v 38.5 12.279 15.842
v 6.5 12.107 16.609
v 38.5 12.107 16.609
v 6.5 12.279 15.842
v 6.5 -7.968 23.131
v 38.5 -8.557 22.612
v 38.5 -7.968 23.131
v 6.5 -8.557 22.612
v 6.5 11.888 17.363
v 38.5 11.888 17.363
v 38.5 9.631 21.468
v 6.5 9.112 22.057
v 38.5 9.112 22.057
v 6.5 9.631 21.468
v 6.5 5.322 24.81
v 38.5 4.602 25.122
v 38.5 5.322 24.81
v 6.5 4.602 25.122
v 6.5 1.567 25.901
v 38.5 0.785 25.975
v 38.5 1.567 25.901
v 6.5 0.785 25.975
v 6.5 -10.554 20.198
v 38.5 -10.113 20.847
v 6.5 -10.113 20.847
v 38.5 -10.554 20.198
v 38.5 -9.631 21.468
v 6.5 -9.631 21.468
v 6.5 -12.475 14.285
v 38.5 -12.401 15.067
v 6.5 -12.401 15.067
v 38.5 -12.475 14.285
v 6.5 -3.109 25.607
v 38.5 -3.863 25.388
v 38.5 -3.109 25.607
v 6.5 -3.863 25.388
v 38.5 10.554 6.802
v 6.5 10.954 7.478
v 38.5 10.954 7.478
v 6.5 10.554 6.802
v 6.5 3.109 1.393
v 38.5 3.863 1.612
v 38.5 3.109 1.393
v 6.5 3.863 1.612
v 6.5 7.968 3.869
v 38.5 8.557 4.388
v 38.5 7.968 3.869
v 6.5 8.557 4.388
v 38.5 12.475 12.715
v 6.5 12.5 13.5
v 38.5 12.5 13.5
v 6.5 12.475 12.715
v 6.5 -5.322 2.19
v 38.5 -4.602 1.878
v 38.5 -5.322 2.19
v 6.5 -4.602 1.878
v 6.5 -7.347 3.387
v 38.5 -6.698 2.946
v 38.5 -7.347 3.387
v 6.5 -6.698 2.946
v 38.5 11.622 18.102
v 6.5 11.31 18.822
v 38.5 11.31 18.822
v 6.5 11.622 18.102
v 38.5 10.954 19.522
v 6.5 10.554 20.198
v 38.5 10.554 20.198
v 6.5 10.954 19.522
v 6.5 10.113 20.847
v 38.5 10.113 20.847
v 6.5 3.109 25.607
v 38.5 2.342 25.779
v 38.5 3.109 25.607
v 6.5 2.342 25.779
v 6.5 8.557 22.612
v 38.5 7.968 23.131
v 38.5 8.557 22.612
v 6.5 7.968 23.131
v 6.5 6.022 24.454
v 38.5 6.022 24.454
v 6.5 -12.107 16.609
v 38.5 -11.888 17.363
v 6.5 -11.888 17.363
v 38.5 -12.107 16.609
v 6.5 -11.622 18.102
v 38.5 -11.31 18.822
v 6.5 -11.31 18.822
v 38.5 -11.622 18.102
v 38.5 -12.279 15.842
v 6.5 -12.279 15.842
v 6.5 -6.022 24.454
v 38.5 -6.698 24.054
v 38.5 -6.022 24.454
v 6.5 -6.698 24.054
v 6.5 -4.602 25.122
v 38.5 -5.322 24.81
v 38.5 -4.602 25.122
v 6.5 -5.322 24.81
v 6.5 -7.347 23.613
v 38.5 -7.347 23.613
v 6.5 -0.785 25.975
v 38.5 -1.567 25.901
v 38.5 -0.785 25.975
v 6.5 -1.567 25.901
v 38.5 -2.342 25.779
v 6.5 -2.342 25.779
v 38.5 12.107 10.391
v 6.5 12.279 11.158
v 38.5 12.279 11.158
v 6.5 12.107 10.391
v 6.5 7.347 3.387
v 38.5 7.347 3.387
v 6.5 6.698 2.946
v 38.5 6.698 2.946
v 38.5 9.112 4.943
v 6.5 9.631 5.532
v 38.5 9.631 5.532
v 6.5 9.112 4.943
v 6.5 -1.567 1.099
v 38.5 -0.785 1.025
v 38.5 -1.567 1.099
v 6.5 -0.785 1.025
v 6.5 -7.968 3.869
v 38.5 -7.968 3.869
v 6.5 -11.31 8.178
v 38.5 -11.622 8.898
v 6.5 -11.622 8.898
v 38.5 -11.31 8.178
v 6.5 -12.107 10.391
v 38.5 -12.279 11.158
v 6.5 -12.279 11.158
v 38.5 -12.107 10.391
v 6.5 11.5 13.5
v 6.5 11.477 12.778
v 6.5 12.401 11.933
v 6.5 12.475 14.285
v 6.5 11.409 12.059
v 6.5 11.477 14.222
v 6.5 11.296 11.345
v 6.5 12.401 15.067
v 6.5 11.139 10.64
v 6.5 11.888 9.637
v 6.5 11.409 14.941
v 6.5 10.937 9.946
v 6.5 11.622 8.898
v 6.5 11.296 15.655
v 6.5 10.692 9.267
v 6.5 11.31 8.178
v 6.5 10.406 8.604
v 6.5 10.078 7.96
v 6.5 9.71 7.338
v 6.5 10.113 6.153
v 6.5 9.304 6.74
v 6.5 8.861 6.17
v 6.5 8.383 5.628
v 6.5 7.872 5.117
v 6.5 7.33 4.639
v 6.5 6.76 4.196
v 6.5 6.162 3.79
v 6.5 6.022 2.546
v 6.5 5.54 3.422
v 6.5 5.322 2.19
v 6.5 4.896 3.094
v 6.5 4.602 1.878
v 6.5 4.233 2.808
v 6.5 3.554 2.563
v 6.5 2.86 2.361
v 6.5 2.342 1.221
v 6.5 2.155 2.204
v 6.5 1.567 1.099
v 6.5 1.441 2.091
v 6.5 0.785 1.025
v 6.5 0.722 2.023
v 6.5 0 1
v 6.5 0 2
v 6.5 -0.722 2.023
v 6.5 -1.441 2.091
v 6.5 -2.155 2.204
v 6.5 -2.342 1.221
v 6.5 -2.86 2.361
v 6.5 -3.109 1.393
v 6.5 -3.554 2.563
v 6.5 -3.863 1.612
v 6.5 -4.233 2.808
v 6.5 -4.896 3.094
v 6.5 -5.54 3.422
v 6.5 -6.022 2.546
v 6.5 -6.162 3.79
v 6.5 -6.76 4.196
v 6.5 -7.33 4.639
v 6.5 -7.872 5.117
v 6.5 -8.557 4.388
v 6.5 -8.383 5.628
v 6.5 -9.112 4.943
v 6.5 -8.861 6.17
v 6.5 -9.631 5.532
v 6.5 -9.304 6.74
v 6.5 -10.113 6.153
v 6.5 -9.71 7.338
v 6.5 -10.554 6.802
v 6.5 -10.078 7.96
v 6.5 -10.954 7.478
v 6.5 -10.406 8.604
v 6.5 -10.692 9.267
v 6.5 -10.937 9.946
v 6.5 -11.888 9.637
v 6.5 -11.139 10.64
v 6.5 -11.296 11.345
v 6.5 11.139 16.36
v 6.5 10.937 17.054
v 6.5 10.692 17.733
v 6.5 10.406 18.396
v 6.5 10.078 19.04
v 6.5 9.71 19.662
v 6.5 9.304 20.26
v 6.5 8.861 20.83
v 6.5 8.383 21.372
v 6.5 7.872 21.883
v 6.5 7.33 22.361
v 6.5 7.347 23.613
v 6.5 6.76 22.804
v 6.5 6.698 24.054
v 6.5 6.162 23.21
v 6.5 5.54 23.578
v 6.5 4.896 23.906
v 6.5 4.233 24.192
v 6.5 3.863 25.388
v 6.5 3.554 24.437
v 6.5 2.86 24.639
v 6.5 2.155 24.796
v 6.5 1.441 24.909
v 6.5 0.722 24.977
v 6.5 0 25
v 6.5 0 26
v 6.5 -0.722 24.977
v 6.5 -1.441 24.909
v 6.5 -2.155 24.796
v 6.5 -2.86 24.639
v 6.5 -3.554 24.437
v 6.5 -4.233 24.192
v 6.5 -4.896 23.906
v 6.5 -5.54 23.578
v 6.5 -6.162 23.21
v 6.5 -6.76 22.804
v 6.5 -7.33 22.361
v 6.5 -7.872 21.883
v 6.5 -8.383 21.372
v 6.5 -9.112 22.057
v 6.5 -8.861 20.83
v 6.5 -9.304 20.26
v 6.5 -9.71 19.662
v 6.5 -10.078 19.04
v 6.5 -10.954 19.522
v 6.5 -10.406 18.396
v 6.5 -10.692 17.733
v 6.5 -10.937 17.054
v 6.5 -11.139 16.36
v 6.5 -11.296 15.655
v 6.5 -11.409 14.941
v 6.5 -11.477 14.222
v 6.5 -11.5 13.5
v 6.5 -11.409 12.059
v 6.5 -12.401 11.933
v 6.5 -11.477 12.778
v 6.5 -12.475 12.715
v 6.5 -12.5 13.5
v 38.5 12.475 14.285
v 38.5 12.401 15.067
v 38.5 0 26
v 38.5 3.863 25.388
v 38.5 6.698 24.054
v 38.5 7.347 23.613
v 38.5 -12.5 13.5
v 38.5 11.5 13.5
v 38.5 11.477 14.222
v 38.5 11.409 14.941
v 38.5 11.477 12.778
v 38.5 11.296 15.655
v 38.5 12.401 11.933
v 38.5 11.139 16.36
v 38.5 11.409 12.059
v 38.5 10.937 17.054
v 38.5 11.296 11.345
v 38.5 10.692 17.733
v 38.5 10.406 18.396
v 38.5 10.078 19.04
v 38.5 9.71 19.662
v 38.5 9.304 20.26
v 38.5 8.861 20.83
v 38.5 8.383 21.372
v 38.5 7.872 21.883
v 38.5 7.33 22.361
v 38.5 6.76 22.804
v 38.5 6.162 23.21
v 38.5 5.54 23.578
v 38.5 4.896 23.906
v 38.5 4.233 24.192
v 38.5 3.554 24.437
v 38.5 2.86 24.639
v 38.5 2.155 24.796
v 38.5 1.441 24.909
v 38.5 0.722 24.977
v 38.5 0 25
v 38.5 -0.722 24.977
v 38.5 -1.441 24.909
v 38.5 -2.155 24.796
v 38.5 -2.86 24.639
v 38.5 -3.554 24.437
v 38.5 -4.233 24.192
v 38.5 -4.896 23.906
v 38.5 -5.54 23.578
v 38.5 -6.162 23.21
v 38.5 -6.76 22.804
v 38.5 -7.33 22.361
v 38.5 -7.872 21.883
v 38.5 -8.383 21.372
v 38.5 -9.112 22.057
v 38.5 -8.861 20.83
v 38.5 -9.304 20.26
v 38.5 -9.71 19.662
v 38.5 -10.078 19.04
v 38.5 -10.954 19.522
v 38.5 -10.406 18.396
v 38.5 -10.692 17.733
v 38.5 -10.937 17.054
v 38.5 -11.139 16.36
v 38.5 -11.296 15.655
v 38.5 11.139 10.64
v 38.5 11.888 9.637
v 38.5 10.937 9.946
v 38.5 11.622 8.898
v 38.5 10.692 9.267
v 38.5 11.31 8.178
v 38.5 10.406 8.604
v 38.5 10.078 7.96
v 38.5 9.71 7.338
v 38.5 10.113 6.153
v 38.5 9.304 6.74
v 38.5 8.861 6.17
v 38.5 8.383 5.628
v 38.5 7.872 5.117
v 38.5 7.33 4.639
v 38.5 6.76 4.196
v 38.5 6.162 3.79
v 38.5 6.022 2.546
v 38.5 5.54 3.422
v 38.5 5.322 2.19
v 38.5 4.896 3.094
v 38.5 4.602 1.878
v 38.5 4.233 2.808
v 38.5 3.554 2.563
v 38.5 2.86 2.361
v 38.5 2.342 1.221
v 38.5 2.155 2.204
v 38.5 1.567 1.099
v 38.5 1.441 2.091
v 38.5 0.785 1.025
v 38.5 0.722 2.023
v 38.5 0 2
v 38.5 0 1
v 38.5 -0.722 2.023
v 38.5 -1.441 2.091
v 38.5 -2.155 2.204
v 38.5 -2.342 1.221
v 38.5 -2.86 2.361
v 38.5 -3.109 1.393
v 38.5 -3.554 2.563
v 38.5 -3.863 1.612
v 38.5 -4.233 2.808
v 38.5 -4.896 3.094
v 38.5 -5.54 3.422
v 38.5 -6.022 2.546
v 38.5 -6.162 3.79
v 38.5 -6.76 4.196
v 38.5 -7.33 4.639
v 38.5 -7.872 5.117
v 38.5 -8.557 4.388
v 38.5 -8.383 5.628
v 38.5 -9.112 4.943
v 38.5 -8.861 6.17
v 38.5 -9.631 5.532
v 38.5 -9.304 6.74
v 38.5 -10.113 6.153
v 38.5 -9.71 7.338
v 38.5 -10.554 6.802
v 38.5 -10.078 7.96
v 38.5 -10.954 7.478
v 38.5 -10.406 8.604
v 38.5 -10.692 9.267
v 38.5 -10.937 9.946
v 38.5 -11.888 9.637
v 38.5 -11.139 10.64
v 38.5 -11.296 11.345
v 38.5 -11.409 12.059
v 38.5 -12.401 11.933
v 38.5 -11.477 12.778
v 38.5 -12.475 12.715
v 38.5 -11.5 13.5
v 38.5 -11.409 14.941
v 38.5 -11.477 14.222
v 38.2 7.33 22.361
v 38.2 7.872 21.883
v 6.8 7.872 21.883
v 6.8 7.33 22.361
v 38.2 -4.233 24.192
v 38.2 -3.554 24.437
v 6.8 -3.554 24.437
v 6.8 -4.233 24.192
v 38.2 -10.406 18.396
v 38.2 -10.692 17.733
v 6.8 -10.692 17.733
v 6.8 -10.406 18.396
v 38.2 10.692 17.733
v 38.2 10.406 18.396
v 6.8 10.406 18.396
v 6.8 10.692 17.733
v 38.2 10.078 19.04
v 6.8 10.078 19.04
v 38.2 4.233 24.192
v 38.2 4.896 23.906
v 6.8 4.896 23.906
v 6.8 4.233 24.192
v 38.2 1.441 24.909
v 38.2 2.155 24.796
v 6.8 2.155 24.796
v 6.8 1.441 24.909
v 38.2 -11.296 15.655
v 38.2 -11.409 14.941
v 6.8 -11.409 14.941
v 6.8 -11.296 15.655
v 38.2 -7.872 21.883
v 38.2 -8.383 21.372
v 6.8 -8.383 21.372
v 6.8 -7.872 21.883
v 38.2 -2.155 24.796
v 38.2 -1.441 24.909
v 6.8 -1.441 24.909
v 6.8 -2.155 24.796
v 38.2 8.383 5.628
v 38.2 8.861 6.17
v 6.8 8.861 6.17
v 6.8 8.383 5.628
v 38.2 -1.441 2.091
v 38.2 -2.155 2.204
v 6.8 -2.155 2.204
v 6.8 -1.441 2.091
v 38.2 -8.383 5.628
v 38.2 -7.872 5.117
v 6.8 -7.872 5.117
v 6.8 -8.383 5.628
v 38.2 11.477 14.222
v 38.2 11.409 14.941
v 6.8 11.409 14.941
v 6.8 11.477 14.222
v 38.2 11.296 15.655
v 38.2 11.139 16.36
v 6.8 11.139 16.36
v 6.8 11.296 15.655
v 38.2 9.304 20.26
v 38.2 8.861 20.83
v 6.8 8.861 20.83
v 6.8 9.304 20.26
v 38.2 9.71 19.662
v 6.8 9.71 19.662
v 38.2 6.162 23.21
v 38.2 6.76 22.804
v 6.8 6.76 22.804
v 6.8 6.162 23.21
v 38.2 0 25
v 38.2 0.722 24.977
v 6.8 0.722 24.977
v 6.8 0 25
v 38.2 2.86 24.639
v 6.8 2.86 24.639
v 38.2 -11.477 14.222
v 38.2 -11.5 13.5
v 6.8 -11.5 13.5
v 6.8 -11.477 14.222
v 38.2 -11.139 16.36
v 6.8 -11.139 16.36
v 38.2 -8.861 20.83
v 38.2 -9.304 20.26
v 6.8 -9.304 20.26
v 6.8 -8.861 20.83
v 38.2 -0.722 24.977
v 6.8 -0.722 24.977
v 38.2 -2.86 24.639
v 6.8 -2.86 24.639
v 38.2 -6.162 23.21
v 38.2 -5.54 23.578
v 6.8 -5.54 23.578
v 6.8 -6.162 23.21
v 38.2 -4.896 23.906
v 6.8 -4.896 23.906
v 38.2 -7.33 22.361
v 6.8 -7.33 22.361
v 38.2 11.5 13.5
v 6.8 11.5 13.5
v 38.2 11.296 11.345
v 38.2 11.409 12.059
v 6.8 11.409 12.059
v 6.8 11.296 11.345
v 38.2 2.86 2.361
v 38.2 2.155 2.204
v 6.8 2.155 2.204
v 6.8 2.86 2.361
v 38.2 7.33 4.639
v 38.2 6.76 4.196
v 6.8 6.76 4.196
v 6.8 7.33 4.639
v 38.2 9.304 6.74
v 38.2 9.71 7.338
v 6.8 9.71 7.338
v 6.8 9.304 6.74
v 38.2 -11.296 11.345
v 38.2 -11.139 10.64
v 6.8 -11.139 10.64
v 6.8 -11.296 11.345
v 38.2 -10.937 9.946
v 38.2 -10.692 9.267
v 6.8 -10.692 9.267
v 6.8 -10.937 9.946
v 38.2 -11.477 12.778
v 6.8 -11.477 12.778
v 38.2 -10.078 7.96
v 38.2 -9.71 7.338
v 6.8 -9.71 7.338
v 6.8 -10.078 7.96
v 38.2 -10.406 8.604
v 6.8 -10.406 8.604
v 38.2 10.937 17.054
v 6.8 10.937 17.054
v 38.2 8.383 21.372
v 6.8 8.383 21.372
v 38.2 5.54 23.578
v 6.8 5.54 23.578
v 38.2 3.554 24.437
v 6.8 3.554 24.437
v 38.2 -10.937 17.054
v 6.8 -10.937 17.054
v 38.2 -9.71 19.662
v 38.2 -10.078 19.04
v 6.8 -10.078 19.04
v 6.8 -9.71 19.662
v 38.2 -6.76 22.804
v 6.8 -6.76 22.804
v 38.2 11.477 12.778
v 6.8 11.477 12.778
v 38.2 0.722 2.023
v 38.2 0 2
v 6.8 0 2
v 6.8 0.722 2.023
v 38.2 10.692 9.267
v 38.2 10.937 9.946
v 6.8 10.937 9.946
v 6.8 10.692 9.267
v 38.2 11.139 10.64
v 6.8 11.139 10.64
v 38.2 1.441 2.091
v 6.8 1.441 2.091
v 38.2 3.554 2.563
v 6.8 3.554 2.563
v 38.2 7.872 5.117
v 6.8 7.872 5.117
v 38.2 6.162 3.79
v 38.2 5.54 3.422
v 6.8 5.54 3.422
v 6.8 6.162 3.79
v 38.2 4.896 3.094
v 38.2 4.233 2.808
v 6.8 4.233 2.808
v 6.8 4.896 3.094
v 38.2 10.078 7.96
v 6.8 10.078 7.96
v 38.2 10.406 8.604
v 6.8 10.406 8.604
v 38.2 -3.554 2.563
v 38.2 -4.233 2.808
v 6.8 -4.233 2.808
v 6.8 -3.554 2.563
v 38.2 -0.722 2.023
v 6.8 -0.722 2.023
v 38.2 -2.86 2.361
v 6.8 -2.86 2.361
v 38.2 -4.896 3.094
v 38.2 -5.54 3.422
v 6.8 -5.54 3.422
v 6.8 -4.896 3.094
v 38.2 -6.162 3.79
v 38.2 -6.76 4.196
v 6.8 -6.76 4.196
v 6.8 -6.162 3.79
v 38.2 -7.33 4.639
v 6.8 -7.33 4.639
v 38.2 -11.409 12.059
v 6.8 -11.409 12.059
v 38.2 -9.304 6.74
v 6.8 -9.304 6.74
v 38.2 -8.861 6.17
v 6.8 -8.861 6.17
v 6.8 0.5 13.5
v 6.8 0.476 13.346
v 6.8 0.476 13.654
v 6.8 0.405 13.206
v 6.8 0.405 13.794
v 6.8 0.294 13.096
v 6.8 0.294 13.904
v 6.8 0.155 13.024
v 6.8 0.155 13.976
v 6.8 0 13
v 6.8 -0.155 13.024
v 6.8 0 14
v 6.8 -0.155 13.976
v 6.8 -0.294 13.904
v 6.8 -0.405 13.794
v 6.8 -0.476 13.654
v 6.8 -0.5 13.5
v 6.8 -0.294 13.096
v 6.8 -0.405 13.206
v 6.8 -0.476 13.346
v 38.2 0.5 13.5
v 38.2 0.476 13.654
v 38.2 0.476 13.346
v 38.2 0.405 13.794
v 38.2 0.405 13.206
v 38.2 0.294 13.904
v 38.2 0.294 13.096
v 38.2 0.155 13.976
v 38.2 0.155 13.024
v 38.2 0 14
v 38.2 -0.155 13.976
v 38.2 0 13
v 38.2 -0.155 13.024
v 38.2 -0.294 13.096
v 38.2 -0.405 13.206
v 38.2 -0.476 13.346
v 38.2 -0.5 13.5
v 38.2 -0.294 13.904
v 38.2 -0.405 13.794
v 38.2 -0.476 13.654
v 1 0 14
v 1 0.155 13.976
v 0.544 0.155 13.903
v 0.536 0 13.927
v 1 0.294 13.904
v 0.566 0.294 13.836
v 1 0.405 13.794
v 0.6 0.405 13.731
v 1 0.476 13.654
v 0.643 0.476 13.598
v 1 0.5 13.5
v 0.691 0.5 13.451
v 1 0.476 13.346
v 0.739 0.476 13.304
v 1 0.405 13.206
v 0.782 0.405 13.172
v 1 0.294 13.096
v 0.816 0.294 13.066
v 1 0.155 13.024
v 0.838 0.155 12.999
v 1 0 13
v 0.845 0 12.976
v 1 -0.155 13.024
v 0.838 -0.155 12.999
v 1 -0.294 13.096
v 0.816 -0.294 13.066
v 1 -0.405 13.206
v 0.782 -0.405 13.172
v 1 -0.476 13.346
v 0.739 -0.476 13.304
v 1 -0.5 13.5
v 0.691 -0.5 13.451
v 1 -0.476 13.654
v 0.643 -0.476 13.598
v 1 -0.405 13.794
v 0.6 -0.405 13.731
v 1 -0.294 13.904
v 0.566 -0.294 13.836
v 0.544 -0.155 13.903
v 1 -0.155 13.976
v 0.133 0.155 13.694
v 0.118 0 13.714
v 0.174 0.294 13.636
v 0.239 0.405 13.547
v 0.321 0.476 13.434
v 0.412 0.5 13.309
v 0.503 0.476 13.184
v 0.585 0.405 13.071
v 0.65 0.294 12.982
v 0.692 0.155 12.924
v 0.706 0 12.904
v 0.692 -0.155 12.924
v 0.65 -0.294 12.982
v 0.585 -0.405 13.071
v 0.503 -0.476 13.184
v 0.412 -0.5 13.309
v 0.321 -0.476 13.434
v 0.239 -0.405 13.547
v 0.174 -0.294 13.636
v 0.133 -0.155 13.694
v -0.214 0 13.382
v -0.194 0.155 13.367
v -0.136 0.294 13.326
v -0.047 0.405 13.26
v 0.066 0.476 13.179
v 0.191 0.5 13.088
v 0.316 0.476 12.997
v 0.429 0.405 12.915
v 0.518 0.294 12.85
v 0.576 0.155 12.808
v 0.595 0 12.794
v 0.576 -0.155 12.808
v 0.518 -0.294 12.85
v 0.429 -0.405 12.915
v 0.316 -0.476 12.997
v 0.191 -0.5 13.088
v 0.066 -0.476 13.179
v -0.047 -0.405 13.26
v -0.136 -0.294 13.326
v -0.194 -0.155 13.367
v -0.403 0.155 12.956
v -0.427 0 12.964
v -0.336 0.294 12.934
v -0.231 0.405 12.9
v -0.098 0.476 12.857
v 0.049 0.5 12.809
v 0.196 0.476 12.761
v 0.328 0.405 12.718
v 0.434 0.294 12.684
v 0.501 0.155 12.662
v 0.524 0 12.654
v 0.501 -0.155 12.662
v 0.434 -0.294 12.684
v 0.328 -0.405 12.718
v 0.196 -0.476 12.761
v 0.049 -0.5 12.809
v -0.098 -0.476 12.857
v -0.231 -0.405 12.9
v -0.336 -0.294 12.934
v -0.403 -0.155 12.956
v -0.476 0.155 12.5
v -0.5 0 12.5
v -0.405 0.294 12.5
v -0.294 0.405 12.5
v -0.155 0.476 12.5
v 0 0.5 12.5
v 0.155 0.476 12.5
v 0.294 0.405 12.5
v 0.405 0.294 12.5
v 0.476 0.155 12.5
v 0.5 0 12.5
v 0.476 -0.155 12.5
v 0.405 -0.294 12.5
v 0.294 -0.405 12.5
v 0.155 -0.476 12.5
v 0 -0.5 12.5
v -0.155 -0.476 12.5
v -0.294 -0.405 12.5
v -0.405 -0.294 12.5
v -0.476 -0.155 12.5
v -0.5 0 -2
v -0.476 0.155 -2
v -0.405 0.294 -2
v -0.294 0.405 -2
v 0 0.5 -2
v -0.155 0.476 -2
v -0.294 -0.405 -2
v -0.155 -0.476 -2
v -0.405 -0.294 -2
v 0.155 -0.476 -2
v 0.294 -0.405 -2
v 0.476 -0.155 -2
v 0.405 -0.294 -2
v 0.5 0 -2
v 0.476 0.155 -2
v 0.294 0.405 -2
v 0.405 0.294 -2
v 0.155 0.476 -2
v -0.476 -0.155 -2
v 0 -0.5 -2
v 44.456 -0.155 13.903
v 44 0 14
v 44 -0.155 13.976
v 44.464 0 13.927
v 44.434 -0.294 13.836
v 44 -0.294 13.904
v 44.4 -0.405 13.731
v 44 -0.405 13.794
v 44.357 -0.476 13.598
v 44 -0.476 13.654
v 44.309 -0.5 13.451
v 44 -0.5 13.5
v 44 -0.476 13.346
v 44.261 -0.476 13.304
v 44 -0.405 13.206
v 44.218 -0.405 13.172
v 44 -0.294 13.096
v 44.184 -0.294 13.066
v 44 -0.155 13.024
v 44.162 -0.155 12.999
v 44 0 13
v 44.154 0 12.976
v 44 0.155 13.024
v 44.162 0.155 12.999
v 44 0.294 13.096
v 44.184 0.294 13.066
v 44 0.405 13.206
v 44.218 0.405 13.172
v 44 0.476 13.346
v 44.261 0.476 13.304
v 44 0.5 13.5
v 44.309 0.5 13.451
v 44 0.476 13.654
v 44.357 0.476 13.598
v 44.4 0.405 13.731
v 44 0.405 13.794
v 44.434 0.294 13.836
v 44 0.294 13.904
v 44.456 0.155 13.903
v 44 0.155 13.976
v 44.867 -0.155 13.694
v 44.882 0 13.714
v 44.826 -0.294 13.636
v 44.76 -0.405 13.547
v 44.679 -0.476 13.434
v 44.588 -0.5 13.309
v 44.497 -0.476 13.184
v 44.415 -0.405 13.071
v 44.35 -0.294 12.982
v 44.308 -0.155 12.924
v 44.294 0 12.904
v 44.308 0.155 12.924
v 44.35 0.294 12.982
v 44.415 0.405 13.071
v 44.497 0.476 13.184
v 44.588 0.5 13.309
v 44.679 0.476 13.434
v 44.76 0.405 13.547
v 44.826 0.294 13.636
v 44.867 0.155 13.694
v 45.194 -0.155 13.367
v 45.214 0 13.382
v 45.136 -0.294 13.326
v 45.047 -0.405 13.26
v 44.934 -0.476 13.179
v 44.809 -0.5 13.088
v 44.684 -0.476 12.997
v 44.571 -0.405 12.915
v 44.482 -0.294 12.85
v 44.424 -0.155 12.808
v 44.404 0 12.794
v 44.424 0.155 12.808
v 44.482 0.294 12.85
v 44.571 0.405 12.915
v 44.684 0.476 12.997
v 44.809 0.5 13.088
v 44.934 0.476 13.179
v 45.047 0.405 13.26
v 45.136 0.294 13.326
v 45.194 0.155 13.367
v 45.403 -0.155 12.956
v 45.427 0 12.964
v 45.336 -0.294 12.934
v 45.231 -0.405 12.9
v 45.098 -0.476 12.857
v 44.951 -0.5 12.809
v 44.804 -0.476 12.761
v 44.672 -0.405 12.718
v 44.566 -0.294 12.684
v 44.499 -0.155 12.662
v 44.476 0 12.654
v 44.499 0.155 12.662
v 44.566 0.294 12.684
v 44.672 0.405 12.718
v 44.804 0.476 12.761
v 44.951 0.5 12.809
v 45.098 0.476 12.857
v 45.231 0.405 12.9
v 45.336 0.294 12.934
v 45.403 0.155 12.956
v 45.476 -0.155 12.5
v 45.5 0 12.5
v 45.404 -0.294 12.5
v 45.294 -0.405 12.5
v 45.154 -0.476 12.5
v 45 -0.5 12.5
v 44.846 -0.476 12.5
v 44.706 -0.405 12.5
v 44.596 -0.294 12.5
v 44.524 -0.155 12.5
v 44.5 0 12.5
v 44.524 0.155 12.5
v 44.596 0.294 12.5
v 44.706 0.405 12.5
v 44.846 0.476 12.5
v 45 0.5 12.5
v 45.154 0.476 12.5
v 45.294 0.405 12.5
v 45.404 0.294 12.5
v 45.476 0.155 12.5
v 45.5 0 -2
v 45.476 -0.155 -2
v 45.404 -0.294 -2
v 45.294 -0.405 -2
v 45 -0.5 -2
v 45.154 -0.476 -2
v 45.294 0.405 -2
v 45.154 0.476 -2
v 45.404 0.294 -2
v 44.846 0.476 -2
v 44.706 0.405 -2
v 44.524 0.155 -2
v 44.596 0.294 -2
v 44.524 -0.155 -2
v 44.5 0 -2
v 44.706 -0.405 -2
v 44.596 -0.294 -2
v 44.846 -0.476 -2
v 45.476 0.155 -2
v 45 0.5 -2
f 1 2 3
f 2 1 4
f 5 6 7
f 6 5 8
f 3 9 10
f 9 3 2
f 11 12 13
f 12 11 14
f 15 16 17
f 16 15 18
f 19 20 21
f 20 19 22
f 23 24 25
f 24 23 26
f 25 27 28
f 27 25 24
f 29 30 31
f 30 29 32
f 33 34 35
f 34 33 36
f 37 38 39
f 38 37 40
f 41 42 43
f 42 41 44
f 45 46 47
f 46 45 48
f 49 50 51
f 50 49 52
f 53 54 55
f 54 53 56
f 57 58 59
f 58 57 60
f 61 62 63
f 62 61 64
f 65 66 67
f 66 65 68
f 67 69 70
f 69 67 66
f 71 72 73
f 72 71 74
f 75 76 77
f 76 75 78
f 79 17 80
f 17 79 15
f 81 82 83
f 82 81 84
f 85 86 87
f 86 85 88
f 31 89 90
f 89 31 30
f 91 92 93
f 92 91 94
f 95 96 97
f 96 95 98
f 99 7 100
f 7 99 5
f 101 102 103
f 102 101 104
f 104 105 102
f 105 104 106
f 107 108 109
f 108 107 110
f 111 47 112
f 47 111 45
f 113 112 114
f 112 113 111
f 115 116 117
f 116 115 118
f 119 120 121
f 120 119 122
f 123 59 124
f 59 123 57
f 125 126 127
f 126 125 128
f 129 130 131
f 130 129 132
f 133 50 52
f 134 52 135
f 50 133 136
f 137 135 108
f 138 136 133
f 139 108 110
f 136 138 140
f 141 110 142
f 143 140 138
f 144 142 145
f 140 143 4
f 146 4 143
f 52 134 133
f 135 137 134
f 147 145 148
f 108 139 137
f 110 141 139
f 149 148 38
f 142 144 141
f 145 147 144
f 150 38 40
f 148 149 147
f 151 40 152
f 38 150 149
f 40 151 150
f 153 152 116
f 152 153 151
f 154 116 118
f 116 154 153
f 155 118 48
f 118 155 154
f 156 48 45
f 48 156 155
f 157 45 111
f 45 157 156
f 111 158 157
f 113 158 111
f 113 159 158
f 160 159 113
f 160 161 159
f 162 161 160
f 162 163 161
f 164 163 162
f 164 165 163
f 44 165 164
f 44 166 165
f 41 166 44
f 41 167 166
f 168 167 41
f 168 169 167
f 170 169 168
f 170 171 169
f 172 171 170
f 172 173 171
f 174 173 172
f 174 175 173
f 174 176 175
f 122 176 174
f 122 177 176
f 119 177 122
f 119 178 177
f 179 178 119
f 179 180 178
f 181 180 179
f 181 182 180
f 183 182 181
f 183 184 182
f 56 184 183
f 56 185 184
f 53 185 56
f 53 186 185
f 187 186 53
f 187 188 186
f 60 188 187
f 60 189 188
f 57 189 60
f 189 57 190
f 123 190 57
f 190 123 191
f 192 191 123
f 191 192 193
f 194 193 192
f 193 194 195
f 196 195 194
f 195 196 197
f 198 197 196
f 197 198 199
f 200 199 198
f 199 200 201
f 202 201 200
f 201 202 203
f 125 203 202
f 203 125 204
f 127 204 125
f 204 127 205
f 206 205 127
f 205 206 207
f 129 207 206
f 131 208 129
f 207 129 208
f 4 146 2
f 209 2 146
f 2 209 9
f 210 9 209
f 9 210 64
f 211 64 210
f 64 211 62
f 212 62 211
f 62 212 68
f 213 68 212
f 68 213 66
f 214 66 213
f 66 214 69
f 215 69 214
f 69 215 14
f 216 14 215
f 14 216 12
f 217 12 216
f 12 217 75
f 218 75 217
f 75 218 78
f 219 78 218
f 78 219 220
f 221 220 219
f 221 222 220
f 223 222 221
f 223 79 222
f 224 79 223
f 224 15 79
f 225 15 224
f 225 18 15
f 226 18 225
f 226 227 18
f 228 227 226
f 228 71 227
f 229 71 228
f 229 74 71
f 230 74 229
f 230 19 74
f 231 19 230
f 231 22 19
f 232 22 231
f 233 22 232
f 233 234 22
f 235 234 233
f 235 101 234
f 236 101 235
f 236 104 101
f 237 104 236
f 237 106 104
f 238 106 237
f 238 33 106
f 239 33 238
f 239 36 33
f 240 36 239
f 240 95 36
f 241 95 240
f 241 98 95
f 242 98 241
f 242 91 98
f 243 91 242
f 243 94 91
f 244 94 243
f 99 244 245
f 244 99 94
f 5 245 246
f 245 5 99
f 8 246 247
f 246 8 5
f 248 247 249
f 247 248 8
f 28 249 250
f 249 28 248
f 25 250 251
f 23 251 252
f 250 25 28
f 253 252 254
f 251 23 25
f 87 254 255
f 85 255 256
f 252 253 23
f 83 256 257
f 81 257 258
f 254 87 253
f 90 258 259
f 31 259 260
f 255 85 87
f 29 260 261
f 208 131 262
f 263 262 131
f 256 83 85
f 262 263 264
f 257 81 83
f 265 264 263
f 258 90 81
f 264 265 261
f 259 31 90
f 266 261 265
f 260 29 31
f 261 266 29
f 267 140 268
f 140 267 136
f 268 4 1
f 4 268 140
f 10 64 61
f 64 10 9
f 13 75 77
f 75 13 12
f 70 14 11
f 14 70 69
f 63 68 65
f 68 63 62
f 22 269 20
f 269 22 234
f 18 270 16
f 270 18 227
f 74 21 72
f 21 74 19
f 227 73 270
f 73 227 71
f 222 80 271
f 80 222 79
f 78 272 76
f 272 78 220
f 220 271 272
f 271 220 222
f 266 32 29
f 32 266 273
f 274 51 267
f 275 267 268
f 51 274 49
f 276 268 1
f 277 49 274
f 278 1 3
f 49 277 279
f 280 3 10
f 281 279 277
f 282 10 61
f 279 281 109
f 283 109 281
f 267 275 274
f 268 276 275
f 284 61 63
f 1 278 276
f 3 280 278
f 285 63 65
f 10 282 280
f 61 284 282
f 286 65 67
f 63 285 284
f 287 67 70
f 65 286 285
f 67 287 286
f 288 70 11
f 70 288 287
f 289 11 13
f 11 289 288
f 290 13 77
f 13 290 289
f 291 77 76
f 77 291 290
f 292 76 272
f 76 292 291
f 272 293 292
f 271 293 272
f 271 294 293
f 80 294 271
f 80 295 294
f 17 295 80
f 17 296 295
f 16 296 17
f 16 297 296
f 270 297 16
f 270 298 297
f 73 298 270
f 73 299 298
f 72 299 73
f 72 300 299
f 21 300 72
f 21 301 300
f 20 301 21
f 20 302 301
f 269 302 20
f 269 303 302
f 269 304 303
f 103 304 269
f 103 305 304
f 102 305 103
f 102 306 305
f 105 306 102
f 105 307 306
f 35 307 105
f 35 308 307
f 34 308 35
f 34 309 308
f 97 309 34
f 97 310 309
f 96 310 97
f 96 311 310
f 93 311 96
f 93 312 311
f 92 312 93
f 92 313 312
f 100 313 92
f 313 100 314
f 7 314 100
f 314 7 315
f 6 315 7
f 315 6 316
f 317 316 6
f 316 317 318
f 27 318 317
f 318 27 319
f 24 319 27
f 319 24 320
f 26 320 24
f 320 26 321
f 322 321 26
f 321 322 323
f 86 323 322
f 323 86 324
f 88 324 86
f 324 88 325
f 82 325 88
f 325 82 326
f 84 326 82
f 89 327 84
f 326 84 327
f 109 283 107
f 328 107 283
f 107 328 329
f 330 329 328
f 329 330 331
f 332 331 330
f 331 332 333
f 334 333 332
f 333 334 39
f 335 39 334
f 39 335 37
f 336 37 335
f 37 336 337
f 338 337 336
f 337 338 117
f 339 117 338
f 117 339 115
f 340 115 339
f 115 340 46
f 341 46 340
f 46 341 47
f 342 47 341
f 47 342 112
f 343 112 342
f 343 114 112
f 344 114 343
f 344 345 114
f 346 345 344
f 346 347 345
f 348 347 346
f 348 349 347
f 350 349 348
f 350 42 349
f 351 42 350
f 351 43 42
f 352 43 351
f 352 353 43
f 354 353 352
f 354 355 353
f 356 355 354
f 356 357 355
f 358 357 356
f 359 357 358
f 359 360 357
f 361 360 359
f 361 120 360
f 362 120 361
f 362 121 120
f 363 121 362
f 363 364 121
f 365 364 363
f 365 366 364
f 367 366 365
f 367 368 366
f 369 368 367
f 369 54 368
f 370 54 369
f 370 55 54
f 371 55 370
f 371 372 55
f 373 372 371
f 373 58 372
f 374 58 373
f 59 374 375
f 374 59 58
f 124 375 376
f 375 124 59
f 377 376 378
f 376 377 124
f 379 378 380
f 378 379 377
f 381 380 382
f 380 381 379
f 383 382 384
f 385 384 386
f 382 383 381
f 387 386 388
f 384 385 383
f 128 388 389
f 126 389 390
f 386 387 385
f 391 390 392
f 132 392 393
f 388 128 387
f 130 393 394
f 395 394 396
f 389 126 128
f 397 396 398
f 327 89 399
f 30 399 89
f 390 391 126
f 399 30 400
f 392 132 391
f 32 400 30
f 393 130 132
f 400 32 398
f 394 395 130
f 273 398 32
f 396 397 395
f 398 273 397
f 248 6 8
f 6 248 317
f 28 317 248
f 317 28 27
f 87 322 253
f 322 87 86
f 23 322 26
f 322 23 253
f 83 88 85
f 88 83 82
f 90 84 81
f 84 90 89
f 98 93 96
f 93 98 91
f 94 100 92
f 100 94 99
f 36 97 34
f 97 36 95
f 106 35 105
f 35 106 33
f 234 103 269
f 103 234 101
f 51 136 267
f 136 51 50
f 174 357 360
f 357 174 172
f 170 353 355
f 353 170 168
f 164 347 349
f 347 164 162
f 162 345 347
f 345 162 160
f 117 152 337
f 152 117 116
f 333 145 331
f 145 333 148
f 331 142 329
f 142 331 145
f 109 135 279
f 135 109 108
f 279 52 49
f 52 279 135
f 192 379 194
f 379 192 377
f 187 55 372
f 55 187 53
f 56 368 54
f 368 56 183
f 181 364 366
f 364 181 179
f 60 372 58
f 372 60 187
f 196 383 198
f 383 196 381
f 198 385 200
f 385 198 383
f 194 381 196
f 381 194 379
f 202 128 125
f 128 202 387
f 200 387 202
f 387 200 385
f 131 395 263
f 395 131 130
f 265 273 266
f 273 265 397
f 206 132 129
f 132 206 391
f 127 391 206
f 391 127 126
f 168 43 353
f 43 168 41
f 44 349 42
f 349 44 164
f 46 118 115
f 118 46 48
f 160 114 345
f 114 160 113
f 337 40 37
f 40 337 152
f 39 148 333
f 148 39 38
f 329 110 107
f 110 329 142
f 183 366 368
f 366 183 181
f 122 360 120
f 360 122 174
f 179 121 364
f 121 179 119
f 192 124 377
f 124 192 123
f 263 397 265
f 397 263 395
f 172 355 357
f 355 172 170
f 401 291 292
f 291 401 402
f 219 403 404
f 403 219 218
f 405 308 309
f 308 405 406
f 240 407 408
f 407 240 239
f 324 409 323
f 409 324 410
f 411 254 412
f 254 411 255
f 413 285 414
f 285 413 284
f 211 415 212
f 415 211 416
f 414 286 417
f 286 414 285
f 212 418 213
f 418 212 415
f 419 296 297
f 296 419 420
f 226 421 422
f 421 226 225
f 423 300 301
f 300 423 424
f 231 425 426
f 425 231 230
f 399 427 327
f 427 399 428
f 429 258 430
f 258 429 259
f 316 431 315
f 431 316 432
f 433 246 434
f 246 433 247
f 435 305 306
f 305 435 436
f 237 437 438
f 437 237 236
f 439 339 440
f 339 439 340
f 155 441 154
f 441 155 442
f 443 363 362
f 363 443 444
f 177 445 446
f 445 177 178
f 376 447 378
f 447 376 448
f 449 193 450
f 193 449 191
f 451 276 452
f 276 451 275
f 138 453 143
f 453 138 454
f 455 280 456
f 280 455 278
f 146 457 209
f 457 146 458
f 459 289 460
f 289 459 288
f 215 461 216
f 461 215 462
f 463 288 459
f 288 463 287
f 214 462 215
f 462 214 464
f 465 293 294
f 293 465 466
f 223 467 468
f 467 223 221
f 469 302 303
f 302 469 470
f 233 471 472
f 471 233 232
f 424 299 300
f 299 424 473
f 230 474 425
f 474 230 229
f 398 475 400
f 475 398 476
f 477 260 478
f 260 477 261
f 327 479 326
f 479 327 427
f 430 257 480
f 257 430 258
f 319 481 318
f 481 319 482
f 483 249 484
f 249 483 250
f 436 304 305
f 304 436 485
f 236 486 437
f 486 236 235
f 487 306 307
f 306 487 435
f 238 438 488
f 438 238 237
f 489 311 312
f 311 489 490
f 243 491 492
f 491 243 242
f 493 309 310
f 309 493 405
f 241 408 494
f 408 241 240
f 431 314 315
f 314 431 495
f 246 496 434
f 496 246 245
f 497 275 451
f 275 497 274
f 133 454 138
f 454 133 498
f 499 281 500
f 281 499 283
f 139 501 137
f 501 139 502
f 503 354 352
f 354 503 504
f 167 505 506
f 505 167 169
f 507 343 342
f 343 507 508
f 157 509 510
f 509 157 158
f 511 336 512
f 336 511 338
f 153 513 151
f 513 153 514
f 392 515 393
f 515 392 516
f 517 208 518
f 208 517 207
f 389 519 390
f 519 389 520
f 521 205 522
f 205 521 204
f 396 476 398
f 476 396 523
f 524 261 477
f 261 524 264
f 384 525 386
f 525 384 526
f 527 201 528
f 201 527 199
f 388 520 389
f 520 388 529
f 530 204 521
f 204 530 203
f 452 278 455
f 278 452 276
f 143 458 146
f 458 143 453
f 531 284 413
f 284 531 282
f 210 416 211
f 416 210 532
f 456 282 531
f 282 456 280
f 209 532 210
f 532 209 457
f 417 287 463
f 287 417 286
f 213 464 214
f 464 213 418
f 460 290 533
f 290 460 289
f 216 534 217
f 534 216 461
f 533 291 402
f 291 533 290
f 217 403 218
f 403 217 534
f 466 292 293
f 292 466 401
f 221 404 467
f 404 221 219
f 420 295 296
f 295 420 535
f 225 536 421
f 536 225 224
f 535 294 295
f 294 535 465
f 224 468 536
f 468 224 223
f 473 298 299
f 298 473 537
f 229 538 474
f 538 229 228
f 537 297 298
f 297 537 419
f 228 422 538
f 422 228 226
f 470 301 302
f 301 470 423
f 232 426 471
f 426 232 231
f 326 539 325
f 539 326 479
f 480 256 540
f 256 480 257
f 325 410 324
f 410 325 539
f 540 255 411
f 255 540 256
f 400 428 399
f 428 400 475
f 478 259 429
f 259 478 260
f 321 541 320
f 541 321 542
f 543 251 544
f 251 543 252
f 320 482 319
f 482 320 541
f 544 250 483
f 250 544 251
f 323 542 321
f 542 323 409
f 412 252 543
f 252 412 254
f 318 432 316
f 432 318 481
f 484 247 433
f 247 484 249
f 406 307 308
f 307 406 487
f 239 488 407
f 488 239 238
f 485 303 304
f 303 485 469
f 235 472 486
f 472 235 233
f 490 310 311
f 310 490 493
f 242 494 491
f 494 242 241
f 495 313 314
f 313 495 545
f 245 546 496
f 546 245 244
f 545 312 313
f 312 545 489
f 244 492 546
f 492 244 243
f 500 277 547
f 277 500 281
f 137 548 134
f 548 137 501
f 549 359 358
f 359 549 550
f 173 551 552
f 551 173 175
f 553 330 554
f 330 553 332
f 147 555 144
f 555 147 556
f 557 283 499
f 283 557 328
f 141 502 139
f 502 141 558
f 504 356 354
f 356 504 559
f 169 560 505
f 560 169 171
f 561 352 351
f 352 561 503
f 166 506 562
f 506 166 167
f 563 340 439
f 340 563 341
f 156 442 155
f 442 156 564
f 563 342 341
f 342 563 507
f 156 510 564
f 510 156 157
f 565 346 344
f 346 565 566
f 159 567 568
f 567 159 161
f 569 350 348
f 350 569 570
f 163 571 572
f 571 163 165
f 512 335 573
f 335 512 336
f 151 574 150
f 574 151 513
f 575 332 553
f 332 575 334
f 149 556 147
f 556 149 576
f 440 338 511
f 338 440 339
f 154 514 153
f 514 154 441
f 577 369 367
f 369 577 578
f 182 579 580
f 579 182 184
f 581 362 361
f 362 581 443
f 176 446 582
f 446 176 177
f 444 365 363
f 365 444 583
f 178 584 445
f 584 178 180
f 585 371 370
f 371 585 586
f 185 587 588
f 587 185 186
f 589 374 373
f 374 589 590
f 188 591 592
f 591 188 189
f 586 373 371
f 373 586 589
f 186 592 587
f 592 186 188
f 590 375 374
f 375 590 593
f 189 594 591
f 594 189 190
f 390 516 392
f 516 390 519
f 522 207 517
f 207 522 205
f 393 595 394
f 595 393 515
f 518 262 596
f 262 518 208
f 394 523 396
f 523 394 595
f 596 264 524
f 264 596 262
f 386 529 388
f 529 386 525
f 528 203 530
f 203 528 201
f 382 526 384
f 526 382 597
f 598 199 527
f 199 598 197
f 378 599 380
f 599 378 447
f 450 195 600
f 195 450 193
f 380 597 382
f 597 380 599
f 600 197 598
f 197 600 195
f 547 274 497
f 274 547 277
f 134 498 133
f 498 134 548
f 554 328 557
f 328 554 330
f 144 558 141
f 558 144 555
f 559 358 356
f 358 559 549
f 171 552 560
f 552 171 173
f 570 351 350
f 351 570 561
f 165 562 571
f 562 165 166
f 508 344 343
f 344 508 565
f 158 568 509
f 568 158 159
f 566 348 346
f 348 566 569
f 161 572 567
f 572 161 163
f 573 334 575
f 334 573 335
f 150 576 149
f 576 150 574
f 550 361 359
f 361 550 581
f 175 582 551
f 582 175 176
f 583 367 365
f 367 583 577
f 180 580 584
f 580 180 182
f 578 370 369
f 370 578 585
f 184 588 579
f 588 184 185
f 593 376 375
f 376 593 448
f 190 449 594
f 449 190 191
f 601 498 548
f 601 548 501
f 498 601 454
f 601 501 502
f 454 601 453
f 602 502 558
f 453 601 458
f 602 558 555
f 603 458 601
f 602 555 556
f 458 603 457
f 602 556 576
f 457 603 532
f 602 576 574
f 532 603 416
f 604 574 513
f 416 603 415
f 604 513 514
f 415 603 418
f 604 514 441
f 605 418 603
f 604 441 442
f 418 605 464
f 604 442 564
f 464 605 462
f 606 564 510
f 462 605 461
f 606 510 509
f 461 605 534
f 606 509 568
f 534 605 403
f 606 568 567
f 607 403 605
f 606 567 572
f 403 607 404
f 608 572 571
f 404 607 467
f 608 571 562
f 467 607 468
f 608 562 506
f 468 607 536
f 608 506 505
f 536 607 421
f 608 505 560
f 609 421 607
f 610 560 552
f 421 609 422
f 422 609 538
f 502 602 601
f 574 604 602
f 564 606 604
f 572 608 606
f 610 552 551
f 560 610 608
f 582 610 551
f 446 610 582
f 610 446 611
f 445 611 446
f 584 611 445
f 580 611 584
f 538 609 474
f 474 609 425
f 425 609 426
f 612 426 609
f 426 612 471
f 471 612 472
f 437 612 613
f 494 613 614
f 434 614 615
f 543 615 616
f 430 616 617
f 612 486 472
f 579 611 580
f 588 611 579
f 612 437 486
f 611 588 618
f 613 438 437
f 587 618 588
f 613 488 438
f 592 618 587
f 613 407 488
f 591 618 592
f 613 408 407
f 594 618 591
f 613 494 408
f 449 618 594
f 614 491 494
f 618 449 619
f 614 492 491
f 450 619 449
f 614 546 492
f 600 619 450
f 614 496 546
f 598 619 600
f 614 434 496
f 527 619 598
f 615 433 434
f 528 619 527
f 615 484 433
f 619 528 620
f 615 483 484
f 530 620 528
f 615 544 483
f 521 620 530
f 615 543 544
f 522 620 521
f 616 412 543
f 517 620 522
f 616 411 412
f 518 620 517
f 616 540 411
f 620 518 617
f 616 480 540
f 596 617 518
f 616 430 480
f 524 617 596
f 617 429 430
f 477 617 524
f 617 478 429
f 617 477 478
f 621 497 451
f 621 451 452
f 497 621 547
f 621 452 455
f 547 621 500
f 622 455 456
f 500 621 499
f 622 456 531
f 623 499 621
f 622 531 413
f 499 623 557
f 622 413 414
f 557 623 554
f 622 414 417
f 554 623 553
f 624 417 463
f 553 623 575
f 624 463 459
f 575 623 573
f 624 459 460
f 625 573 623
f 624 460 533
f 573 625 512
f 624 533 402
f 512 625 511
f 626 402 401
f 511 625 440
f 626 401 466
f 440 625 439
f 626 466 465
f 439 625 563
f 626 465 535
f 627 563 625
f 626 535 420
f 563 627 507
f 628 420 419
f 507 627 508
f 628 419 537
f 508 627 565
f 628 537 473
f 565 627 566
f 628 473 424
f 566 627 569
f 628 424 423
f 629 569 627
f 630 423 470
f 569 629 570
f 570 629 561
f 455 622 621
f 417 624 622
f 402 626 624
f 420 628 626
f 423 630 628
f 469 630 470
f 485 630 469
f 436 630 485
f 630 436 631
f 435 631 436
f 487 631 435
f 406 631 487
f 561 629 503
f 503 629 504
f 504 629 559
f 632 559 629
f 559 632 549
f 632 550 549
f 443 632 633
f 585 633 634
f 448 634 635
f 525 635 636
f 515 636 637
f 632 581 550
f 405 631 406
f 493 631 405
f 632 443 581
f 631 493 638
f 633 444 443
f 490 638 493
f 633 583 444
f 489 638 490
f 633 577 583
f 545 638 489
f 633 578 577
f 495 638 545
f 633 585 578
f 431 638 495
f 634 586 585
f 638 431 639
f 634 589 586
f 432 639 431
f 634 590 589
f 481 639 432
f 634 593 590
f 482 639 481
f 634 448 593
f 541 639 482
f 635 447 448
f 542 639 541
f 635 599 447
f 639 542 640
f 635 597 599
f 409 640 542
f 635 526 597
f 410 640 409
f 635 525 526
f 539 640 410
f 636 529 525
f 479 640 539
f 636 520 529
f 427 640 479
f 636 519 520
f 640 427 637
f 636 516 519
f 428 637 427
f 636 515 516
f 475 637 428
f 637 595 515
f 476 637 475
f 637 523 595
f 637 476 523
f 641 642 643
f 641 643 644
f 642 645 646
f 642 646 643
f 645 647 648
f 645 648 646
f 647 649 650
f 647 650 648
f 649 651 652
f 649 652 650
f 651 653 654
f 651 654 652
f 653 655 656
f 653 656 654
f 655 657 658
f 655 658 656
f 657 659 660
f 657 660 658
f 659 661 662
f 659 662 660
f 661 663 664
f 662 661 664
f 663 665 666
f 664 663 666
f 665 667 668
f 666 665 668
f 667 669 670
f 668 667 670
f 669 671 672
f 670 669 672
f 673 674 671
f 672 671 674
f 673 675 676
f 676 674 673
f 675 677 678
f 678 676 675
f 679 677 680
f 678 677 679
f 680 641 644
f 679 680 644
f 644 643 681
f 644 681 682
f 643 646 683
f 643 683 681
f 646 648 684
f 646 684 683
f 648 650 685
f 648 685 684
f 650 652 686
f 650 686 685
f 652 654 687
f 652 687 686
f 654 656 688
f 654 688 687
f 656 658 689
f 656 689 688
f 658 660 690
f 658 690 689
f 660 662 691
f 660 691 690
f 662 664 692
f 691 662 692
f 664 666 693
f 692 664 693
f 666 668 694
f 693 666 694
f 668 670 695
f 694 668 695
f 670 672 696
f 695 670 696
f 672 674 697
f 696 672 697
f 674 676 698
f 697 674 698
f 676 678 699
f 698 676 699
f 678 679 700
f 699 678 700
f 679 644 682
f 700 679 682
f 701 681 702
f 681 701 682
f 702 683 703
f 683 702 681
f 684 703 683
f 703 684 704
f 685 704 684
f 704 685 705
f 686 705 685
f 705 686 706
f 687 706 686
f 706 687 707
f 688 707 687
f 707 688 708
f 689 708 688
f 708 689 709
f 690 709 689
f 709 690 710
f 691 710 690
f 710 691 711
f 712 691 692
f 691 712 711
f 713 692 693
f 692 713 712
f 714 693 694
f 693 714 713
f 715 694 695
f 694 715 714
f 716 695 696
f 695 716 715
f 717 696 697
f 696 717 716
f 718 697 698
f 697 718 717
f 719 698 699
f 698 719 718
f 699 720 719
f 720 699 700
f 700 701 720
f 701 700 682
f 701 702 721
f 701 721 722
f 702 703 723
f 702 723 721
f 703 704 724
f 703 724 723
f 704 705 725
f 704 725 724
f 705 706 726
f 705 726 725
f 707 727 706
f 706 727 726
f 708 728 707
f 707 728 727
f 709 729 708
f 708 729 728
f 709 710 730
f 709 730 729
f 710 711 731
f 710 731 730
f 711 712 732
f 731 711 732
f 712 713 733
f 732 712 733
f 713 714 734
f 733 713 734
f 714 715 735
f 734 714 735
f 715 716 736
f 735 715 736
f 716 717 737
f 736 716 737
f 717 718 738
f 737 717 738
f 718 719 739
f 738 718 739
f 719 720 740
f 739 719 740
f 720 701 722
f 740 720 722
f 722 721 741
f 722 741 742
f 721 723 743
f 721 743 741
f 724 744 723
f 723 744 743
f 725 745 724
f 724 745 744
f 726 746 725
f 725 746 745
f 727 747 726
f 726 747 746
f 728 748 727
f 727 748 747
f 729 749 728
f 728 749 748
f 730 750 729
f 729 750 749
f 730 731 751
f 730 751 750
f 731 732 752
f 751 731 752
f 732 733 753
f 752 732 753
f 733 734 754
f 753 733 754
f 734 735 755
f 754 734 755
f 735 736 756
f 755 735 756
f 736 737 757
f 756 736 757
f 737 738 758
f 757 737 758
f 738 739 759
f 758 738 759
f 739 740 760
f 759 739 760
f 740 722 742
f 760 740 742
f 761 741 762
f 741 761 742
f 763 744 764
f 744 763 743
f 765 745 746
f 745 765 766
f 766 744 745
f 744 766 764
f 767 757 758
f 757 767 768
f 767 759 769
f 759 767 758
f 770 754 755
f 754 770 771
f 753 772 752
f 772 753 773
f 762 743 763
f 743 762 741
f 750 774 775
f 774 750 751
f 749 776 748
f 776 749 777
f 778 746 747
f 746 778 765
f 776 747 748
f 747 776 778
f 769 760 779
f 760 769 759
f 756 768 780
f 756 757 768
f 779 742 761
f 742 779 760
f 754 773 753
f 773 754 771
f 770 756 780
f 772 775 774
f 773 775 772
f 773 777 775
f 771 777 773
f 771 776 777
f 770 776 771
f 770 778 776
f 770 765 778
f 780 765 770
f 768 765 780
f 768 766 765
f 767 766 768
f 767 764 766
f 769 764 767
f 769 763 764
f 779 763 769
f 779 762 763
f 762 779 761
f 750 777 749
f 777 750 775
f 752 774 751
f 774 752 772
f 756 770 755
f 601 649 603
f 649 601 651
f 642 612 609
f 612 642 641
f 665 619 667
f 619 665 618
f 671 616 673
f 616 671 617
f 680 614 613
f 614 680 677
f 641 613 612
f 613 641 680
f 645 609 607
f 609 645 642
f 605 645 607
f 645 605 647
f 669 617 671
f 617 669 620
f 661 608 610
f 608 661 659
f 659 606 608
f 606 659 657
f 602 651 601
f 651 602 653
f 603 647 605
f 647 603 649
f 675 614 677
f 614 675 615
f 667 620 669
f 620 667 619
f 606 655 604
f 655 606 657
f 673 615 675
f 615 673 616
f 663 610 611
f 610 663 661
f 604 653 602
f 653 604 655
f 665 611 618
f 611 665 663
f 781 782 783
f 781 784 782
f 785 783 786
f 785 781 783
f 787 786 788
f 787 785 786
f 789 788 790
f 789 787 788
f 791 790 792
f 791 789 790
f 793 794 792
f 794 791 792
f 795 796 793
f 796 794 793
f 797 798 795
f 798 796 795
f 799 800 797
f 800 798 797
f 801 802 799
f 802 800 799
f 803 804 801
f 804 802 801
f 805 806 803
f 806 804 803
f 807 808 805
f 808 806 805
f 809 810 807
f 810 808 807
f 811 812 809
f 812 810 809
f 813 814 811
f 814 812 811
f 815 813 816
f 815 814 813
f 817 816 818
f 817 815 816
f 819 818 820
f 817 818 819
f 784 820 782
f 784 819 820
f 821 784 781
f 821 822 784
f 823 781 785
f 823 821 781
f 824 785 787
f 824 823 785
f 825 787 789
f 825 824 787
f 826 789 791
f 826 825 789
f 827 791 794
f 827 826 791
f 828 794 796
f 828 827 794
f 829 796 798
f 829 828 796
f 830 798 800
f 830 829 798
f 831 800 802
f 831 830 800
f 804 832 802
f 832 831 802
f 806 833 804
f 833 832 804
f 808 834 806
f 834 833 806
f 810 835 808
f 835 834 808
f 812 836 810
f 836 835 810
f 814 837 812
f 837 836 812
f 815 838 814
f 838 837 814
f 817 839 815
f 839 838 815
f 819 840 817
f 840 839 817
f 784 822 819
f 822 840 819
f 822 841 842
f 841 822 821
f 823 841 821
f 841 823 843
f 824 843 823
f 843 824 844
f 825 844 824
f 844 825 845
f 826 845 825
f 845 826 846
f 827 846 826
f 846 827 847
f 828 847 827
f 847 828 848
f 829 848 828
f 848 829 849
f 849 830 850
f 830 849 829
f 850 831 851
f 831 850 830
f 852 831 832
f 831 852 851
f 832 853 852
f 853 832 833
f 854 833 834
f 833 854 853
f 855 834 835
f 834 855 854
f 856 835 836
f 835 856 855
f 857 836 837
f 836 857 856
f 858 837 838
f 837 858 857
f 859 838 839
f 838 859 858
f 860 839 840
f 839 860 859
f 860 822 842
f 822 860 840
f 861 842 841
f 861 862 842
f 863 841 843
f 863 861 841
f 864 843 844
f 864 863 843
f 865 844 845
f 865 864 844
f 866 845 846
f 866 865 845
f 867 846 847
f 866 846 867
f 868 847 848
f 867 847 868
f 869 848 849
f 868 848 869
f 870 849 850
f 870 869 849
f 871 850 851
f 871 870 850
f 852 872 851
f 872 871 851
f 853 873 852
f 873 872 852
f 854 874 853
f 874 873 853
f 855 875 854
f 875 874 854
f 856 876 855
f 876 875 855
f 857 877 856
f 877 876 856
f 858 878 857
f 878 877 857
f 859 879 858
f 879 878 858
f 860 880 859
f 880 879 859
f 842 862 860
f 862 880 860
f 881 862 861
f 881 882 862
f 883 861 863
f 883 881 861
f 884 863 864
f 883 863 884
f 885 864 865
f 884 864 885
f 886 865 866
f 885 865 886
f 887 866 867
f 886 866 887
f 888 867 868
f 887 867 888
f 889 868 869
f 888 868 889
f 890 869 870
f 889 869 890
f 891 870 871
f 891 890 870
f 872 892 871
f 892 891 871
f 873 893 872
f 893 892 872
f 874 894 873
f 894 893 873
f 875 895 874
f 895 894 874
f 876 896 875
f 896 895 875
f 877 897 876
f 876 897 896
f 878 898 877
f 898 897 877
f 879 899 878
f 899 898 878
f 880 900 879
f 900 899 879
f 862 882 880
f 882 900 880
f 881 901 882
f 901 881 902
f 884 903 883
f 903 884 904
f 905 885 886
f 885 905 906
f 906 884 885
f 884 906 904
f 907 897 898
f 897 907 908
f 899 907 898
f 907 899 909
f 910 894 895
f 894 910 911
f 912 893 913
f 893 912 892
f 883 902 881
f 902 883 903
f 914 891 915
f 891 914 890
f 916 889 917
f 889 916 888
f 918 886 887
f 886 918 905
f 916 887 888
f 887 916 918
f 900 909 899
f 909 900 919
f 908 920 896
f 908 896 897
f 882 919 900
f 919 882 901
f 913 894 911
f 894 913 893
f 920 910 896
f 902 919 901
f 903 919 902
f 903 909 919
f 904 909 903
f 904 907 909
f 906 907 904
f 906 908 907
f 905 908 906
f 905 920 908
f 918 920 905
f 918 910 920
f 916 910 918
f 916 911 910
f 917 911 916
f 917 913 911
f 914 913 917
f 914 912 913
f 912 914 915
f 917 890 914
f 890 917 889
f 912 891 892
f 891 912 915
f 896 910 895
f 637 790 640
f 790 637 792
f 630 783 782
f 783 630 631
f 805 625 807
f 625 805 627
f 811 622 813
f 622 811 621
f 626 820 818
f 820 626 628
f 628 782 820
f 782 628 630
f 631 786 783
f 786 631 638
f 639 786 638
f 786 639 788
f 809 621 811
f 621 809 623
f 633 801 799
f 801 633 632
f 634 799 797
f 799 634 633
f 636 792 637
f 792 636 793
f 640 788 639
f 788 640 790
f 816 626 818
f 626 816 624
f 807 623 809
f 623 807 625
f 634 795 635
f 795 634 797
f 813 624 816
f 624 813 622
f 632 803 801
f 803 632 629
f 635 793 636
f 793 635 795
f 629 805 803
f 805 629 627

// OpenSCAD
/**
 * Корпус
 *
 * length   - Длина корпуса
 * diameter - Диаметр корпуса
 */
module body(length, diameter) {
    difference() {
        cylinder(h=length, r=diameter/2, $fn=100);
        translate([0,0,-1]) cylinder(h=length+2, r=diameter/2-1, $fn=100);
    }

    // Компаунд
    translate([0,0,0.3]) cylinder(h=length-0.3*2, r=diameter/2-0.5, $fn=20);
}

/**
 * Вывод
 */
module lead() {
    translate([-1, 0, 0]) intersection() {
        rotate_extrude($fn=20) translate([1, 0, 0]) circle(r=0.5);
        translate([0,0,-50]) cube([100,100,100]);
    };

    rotate([90,0,0]) translate([0, 0, 0]) cylinder(r=0.5, h=25/2 + 2, $fn=20);
    rotate([0,270,0]) translate([0, 1, 1]) cylinder(r=0.5, h=25/2 + 2, $fn=20);
}

rotate([90,0,90]) translate([0, 25/2 + 1, 6.5]) body(32, 25);
rotate([90,0,180]) translate([0, 25/2, 0]) lead();
rotate([90,0,0]) translate([45, 25/2, 0]) lead();
